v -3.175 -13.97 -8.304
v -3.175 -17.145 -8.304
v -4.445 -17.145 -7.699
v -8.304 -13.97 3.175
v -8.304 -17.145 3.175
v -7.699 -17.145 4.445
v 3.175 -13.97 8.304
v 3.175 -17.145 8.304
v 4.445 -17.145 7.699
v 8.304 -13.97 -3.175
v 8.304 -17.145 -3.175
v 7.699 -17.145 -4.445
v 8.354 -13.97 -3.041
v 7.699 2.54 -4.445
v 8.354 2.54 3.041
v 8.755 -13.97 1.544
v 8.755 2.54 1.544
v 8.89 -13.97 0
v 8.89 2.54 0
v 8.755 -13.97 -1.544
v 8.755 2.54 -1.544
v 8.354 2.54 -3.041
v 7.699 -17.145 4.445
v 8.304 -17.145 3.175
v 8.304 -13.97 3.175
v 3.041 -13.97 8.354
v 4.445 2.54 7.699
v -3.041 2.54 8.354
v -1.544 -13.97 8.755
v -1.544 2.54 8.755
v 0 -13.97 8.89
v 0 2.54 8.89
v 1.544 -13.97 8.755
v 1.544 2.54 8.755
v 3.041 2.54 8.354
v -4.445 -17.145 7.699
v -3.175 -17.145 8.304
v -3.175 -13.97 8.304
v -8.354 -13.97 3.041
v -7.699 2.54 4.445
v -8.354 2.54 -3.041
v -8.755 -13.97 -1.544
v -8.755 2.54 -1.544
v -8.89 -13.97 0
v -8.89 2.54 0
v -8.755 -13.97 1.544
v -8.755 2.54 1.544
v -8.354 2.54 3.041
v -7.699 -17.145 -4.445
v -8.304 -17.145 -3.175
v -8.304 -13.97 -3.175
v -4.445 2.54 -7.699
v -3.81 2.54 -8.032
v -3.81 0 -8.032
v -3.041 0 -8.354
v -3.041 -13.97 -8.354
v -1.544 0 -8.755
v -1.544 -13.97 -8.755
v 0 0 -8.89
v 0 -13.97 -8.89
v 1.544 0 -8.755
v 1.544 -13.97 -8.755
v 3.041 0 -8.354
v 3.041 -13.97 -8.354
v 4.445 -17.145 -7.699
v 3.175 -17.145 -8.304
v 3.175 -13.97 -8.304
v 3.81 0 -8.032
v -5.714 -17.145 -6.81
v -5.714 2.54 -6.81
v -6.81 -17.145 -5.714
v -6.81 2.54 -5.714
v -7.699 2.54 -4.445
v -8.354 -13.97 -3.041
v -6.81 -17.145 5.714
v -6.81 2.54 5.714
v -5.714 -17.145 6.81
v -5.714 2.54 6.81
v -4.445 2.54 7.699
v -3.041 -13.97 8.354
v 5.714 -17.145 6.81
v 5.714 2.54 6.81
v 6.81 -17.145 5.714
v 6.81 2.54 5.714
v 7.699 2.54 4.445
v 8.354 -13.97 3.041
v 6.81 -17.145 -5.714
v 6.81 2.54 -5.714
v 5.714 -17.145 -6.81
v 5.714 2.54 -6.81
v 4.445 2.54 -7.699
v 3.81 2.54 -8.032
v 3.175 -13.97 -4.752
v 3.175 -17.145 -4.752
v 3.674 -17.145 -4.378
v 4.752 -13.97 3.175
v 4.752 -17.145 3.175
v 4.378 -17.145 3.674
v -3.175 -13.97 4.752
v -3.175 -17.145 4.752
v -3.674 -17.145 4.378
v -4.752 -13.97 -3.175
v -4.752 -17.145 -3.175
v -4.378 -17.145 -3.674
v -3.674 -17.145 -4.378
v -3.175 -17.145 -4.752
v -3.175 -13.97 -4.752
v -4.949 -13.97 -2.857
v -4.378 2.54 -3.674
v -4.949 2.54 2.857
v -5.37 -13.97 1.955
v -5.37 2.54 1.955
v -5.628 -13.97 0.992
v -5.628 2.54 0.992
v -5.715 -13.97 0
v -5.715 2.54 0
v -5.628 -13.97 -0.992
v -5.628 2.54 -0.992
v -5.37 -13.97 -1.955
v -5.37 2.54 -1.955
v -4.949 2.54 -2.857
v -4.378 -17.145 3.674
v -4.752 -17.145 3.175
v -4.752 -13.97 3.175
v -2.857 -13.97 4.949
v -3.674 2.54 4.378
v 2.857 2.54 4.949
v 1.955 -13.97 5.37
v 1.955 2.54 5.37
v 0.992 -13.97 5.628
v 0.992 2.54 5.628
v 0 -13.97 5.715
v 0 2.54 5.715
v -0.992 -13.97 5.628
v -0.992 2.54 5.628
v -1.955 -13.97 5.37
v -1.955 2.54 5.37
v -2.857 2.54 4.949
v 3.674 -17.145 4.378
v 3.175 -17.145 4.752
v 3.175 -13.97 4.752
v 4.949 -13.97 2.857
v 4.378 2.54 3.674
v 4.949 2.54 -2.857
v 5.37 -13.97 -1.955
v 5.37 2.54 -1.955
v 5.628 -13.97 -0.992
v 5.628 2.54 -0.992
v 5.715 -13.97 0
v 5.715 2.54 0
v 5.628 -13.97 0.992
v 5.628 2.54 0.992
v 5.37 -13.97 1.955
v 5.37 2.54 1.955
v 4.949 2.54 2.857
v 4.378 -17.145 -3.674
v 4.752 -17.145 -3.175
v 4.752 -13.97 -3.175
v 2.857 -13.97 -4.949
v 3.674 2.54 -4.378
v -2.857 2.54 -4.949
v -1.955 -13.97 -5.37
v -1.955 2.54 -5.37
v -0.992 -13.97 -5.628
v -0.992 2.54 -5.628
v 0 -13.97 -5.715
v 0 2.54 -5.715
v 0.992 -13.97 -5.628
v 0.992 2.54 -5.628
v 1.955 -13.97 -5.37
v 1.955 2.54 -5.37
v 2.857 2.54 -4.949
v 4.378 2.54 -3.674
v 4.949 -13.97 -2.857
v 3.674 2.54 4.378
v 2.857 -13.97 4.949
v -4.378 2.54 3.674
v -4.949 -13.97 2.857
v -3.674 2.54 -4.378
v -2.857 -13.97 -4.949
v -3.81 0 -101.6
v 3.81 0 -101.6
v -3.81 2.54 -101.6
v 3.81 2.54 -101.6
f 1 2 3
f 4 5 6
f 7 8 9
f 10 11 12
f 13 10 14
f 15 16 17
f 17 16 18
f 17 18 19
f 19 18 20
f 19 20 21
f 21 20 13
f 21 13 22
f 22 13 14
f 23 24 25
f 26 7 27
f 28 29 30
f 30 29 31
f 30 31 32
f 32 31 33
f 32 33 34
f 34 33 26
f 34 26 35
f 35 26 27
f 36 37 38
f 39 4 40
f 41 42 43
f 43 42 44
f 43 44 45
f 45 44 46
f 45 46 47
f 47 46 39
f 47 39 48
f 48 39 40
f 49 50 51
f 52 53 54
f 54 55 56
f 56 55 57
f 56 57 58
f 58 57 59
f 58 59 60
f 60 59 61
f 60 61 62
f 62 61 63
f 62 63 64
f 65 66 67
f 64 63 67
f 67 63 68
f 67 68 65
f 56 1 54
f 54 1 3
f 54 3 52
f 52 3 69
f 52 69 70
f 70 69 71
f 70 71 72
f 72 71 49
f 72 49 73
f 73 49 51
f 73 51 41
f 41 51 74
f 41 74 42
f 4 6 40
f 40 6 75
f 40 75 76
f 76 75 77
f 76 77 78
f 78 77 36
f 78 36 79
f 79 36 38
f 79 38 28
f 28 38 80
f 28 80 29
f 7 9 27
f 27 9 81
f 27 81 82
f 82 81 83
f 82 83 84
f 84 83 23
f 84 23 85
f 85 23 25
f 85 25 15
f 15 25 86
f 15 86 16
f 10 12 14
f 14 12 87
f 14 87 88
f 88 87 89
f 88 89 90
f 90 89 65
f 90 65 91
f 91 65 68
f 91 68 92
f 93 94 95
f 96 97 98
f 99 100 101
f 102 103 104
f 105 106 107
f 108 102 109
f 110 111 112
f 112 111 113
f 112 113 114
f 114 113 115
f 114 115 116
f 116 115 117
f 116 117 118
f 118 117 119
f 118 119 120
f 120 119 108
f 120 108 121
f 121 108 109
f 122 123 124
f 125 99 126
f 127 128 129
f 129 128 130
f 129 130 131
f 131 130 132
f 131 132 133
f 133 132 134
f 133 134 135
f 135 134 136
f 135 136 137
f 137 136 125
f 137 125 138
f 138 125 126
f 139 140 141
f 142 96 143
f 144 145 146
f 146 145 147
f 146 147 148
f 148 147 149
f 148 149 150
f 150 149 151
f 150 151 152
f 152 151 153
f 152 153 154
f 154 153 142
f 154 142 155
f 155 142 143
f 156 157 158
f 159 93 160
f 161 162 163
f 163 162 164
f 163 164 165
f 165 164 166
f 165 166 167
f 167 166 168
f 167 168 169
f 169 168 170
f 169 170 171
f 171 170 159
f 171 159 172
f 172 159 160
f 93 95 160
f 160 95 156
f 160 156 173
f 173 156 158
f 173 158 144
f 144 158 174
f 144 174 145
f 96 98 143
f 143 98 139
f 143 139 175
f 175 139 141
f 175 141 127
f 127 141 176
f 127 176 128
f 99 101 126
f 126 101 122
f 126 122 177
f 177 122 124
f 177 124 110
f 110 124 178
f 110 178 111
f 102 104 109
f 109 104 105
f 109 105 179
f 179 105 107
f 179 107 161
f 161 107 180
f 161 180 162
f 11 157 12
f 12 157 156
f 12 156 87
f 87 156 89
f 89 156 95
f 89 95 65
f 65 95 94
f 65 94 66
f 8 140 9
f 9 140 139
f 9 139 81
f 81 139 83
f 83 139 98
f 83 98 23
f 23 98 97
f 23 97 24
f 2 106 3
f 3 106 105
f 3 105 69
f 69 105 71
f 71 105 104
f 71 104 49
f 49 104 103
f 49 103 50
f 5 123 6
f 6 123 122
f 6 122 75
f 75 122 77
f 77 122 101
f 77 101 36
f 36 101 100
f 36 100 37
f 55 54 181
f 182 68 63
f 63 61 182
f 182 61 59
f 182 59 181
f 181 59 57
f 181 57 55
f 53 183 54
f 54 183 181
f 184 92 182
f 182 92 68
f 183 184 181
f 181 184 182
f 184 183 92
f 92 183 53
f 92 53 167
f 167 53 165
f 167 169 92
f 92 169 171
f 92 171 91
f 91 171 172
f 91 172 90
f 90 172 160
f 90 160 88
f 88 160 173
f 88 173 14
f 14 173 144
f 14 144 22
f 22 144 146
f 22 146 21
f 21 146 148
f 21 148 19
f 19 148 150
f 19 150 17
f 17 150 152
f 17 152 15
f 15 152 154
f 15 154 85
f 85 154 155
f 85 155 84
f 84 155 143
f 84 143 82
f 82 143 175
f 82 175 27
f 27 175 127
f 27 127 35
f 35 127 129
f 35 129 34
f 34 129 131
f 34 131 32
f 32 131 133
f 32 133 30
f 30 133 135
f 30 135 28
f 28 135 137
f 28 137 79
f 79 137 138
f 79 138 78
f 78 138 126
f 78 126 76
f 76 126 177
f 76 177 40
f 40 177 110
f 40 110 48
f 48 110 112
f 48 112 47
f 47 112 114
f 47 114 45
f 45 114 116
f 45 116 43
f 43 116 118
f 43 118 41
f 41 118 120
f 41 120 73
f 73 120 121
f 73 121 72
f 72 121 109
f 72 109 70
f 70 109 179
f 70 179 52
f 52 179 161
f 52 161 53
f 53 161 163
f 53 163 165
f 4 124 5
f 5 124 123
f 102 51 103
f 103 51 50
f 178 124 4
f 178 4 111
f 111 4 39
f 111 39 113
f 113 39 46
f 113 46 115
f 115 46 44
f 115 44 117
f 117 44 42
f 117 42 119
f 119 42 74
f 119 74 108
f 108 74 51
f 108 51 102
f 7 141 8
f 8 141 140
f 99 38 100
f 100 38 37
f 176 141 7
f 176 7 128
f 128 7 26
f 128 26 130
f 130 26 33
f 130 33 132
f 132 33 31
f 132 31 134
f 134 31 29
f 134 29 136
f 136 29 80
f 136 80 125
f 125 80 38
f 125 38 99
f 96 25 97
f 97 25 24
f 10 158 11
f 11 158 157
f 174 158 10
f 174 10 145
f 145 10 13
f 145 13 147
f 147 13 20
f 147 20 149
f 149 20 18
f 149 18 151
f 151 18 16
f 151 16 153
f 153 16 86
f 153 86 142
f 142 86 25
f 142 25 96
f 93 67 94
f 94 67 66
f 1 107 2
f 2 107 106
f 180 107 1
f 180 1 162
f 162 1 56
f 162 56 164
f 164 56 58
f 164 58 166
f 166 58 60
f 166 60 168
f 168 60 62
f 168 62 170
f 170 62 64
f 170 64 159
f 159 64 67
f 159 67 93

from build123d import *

# Parameters (mm, degrees)
BOSS_EXTRUDE1_DEPTH = 2.54
BOSS_EXTRUDE2_START = 17.145
SKETCH3_R           = 8.89
SKETCH3_R_2         = 5.715
BOSS_EXTRUDE2_DEPTH = 17.145
CUT_EXTRUDE1_DEPTH  = 3.175


with BuildPart() as part:
    # Sketch2 → Boss-Extrude1 (new body)
    with BuildSketch(Plane(origin=(0, 0, 0), x_dir=(1, 0, 0), z_dir=(0, 1, 0))):
        with BuildLine():
            Line((3.81, 8.032185257), (3.81, 101.6))
            Line((3.81, 101.6), (-3.81, 101.6))
            Line((-3.81, 101.6), (-3.81, 8.032185257))
            ThreePointArc((-3.81, 8.032185257), (0, 8.89), (3.81, 8.032185257))
        make_face()
        with BuildLine():
            ThreePointArc((8.89, 0), (7.513421325, 4.751904881), (3.81, 8.032185257))
            Line((3.81, 8.032185257), (3.81, 4.259709497))
            ThreePointArc((3.81, 4.259709497), (5.21705736, 2.33313898), (5.715, 0))
            ThreePointArc((5.715, 0), (-2.33313898, -5.21705736), (-3.81, 4.259709497))
            Line((-3.81, 4.259709497), (-3.81, 8.032185257))
            ThreePointArc((-3.81, 8.032185257), (-4.751904881, -7.513421325), (8.89, 0))
        make_face()
        with BuildLine():
            Line((3.81, 4.259709497), (3.81, 8.032185257))
            ThreePointArc((3.81, 8.032185257), (0, 8.89), (-3.81, 8.032185257))
            Line((-3.81, 8.032185257), (-3.81, 4.259709497))
            ThreePointArc((-3.81, 4.259709497), (0, 5.715), (3.81, 4.259709497))
        make_face()
    extrude(amount=BOSS_EXTRUDE1_DEPTH)

    # Sketch3 → Boss-Extrude2 (add)
    with BuildSketch(Plane.XZ.offset(BOSS_EXTRUDE2_START)):
        with Locations(Location((0, 0, 0), (0, 0, 270))):
            Circle(SKETCH3_R)
        with Locations(Location((0, 0, 0), (0, 0, 270))):
            Circle(SKETCH3_R_2, mode=Mode.SUBTRACT)
    extrude(amount=-BOSS_EXTRUDE2_DEPTH)

    # Sketch4 → Cut-Extrude1 (cut)
    with BuildSketch(Plane.XZ.offset(17.145)):
        with BuildLine():
            Line((-4.751904881, 3.175), (-8.303702487, 3.175))
            ThreePointArc((-8.303702487, 3.175), (-8.89, 0), (-8.303702487, -3.175))
            Line((-8.303702487, -3.175), (-4.751904881, -3.175))
            ThreePointArc((-4.751904881, -3.175), (-5.715, 0), (-4.751904881, 3.175))
        make_face()
        with BuildLine():
            ThreePointArc((8.89, 0), (8.742196953, 1.614339631), (8.303702487, 3.175))
            Line((8.303702487, 3.175), (4.751904881, 3.175))
            ThreePointArc((4.751904881, 3.175), (5.468928661, 1.658928661), (5.715, 0))
            ThreePointArc((5.715, 0), (5.468928661, -1.658928661), (4.751904881, -3.175))
            Line((4.751904881, -3.175), (8.303702487, -3.175))
            ThreePointArc((8.303702487, -3.175), (8.742196953, -1.614339631), (8.89, 0))
        make_face()
        with BuildLine():
            ThreePointArc((3.175, 8.303702487), (0, 8.89), (-3.175, 8.303702487))
            Line((-3.175, 8.303702487), (-3.175, 4.751904881))
            ThreePointArc((-3.175, 4.751904881), (0, 5.715), (3.175, 4.751904881))
            Line((3.175, 4.751904881), (3.175, 8.303702487))
        make_face()
        with BuildLine():
            Line((-3.175, -4.751904881), (-3.175, -8.303702487))
            ThreePointArc((-3.175, -8.303702487), (0, -8.89), (3.175, -8.303702487))
            Line((3.175, -8.303702487), (3.175, -4.751904881))
            ThreePointArc((3.175, -4.751904881), (0, -5.715), (-3.175, -4.751904881))
        make_face()
    extrude(amount=-CUT_EXTRUDE1_DEPTH, mode=Mode.SUBTRACT)


solid = part.part
